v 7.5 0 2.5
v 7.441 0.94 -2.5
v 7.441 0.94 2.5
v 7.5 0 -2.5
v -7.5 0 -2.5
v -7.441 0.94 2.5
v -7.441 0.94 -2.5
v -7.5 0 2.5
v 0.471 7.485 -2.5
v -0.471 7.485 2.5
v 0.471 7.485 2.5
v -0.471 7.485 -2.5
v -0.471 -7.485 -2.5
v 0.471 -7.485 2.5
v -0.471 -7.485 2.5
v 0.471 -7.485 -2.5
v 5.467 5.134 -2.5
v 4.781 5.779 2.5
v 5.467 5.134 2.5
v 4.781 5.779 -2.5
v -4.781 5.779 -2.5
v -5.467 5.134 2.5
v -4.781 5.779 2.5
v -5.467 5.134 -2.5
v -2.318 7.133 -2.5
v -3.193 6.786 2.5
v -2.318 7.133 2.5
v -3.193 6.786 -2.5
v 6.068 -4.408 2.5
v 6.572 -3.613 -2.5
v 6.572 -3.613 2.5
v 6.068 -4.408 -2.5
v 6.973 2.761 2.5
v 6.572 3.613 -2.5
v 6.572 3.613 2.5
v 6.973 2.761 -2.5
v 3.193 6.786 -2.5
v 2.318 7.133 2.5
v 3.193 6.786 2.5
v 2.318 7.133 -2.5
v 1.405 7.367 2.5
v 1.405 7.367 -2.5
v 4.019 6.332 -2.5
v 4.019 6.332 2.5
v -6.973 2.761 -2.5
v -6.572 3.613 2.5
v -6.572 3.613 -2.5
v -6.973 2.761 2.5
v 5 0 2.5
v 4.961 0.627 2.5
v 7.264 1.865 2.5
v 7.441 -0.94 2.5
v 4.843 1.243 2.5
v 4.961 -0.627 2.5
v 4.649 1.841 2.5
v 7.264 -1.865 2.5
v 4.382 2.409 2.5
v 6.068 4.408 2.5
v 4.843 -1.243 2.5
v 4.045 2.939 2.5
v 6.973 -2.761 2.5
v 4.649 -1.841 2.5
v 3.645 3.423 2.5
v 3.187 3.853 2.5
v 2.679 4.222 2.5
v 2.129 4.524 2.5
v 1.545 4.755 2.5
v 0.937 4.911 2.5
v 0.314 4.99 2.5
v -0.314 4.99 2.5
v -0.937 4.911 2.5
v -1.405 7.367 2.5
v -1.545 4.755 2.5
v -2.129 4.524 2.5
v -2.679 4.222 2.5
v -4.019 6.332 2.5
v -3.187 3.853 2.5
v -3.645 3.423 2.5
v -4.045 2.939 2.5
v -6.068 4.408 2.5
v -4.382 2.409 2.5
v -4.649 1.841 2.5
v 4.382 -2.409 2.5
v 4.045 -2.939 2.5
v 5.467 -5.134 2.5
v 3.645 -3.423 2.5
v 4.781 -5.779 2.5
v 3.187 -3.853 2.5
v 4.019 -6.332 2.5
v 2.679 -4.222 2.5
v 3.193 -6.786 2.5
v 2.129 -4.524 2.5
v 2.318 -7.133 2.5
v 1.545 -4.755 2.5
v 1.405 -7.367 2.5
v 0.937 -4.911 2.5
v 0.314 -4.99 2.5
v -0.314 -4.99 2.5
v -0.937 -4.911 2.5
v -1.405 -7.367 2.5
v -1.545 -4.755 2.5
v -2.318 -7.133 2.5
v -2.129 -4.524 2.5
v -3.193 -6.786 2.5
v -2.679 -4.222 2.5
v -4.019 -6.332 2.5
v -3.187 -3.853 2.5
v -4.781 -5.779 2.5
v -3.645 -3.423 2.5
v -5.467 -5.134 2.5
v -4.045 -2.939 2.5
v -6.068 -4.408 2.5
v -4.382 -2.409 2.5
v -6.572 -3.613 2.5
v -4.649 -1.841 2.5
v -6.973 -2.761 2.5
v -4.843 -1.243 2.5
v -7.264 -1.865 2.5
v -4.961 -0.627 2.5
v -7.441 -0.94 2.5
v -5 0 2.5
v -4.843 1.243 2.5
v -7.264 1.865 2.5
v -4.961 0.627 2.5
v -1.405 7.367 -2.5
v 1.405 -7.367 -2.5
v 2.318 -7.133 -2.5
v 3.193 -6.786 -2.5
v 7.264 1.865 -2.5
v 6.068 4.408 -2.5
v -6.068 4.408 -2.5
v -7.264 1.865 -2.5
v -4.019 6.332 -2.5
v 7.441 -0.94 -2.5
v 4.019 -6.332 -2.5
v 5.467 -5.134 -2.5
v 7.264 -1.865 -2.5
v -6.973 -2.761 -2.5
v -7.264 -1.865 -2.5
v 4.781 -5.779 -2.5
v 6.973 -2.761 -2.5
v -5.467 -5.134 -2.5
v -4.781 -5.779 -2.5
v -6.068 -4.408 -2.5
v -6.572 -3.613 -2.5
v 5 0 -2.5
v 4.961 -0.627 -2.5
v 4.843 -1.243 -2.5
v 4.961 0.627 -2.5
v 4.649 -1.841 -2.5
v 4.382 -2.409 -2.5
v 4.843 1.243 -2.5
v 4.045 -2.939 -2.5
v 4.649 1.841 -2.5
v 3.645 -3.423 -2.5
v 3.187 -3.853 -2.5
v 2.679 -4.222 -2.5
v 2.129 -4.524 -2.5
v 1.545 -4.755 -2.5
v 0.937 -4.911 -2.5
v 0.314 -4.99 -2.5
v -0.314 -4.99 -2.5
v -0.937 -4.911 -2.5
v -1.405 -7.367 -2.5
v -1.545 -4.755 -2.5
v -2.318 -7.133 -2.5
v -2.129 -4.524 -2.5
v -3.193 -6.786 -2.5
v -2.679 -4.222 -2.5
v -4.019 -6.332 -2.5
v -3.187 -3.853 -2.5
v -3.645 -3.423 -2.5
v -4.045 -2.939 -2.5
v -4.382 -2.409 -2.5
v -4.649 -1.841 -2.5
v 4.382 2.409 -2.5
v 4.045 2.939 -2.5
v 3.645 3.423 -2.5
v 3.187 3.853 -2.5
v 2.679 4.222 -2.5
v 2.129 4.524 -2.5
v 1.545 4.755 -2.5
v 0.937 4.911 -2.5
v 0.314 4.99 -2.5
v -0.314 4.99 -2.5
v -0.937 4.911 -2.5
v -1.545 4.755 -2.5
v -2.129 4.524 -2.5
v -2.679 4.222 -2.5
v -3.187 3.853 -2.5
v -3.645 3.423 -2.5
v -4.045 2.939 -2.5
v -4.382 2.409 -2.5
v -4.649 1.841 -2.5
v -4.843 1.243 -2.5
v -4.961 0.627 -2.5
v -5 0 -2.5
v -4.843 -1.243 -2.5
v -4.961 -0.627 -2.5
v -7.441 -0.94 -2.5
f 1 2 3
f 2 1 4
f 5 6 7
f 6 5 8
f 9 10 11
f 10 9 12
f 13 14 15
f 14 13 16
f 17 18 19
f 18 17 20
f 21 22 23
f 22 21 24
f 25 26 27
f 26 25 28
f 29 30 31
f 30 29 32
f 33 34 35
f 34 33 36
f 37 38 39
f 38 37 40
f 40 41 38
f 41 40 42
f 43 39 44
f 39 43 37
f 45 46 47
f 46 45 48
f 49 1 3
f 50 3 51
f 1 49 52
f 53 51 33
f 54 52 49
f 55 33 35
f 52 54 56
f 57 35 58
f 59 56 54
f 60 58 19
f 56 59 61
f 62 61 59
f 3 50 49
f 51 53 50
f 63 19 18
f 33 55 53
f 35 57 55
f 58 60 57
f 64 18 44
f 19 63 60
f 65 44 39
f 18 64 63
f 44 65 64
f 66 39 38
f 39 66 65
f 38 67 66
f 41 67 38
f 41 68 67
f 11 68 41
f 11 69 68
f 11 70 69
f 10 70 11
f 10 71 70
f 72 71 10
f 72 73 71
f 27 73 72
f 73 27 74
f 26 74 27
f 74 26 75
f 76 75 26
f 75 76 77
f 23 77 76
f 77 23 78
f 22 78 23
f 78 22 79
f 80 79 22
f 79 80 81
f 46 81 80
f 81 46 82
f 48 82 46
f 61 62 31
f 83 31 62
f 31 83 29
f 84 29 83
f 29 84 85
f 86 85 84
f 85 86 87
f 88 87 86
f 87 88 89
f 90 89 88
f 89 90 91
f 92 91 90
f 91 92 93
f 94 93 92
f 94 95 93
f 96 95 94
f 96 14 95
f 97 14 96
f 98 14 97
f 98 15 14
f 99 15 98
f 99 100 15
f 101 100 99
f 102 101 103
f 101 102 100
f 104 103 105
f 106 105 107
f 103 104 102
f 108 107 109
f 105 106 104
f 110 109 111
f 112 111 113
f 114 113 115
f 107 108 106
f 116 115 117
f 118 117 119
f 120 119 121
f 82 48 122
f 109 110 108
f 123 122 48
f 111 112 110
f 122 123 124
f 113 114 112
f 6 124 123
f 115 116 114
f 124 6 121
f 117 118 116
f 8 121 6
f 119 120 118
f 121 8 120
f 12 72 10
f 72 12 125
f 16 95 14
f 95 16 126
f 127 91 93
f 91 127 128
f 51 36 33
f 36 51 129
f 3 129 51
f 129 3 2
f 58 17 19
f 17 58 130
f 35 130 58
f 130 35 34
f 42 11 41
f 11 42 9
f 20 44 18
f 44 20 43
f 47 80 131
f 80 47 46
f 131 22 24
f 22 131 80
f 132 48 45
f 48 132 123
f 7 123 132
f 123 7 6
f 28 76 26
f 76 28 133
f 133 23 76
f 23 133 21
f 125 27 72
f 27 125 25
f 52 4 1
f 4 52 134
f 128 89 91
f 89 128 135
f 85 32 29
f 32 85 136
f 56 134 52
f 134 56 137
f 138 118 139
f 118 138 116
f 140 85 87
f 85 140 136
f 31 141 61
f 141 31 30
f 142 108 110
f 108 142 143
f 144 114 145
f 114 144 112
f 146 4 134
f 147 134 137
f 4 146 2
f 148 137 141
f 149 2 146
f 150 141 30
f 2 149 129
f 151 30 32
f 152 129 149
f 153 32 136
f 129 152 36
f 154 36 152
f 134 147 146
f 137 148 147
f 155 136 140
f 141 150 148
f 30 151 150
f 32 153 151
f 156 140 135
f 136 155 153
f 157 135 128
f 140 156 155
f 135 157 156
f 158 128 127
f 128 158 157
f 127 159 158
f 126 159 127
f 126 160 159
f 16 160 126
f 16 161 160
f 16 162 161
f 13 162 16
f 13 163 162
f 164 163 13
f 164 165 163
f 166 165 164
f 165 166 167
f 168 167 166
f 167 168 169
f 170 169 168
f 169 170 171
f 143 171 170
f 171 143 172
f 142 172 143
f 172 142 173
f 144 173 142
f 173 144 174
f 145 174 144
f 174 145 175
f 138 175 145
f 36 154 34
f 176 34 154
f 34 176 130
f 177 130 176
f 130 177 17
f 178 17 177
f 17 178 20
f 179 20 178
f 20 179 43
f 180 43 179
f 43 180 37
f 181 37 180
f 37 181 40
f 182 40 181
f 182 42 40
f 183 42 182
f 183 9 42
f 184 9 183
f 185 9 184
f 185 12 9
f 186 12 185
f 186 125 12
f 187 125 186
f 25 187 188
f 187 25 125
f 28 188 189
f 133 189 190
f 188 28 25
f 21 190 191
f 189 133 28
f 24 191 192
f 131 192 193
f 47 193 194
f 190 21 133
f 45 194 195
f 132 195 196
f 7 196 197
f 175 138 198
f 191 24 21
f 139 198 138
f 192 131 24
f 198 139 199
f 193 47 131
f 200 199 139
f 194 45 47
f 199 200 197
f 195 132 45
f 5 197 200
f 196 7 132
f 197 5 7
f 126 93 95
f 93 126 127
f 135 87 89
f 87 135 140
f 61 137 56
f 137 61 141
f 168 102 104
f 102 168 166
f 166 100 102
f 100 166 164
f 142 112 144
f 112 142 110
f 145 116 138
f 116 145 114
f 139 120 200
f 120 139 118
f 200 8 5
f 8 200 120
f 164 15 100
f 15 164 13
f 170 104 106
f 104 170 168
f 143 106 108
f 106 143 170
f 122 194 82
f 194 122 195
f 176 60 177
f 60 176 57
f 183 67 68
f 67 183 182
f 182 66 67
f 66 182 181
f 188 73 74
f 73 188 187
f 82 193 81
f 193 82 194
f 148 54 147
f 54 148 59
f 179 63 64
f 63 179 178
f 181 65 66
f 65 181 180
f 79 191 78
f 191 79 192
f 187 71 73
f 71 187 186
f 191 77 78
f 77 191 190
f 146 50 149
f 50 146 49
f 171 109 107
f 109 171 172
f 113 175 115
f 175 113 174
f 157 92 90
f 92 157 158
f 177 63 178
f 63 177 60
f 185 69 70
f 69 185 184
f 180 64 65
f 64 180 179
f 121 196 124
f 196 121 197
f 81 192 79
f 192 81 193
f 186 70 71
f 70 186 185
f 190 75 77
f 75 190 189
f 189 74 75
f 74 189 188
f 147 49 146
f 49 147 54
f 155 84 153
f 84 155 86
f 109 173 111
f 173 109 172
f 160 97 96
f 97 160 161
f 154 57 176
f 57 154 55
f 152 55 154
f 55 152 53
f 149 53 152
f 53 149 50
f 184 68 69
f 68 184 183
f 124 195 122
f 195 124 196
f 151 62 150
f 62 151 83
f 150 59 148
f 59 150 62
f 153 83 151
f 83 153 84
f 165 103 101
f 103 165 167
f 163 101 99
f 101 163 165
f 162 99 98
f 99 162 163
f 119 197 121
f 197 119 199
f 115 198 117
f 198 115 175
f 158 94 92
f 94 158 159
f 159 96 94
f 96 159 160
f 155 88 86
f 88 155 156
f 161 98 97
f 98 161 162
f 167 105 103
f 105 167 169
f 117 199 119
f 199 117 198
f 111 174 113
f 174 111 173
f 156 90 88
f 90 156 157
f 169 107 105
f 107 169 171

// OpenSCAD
$fn = 50;


difference() {
	union() {
		translate(v = [0, 0, -2.5000000000]) {
			cylinder(h = 5, r = 7.5000000000);
		}
	}
	union() {
		translate(v = [0, 0, -100.0000000000]) {
			cylinder(h = 200, r = 5);
		}
	}
}
